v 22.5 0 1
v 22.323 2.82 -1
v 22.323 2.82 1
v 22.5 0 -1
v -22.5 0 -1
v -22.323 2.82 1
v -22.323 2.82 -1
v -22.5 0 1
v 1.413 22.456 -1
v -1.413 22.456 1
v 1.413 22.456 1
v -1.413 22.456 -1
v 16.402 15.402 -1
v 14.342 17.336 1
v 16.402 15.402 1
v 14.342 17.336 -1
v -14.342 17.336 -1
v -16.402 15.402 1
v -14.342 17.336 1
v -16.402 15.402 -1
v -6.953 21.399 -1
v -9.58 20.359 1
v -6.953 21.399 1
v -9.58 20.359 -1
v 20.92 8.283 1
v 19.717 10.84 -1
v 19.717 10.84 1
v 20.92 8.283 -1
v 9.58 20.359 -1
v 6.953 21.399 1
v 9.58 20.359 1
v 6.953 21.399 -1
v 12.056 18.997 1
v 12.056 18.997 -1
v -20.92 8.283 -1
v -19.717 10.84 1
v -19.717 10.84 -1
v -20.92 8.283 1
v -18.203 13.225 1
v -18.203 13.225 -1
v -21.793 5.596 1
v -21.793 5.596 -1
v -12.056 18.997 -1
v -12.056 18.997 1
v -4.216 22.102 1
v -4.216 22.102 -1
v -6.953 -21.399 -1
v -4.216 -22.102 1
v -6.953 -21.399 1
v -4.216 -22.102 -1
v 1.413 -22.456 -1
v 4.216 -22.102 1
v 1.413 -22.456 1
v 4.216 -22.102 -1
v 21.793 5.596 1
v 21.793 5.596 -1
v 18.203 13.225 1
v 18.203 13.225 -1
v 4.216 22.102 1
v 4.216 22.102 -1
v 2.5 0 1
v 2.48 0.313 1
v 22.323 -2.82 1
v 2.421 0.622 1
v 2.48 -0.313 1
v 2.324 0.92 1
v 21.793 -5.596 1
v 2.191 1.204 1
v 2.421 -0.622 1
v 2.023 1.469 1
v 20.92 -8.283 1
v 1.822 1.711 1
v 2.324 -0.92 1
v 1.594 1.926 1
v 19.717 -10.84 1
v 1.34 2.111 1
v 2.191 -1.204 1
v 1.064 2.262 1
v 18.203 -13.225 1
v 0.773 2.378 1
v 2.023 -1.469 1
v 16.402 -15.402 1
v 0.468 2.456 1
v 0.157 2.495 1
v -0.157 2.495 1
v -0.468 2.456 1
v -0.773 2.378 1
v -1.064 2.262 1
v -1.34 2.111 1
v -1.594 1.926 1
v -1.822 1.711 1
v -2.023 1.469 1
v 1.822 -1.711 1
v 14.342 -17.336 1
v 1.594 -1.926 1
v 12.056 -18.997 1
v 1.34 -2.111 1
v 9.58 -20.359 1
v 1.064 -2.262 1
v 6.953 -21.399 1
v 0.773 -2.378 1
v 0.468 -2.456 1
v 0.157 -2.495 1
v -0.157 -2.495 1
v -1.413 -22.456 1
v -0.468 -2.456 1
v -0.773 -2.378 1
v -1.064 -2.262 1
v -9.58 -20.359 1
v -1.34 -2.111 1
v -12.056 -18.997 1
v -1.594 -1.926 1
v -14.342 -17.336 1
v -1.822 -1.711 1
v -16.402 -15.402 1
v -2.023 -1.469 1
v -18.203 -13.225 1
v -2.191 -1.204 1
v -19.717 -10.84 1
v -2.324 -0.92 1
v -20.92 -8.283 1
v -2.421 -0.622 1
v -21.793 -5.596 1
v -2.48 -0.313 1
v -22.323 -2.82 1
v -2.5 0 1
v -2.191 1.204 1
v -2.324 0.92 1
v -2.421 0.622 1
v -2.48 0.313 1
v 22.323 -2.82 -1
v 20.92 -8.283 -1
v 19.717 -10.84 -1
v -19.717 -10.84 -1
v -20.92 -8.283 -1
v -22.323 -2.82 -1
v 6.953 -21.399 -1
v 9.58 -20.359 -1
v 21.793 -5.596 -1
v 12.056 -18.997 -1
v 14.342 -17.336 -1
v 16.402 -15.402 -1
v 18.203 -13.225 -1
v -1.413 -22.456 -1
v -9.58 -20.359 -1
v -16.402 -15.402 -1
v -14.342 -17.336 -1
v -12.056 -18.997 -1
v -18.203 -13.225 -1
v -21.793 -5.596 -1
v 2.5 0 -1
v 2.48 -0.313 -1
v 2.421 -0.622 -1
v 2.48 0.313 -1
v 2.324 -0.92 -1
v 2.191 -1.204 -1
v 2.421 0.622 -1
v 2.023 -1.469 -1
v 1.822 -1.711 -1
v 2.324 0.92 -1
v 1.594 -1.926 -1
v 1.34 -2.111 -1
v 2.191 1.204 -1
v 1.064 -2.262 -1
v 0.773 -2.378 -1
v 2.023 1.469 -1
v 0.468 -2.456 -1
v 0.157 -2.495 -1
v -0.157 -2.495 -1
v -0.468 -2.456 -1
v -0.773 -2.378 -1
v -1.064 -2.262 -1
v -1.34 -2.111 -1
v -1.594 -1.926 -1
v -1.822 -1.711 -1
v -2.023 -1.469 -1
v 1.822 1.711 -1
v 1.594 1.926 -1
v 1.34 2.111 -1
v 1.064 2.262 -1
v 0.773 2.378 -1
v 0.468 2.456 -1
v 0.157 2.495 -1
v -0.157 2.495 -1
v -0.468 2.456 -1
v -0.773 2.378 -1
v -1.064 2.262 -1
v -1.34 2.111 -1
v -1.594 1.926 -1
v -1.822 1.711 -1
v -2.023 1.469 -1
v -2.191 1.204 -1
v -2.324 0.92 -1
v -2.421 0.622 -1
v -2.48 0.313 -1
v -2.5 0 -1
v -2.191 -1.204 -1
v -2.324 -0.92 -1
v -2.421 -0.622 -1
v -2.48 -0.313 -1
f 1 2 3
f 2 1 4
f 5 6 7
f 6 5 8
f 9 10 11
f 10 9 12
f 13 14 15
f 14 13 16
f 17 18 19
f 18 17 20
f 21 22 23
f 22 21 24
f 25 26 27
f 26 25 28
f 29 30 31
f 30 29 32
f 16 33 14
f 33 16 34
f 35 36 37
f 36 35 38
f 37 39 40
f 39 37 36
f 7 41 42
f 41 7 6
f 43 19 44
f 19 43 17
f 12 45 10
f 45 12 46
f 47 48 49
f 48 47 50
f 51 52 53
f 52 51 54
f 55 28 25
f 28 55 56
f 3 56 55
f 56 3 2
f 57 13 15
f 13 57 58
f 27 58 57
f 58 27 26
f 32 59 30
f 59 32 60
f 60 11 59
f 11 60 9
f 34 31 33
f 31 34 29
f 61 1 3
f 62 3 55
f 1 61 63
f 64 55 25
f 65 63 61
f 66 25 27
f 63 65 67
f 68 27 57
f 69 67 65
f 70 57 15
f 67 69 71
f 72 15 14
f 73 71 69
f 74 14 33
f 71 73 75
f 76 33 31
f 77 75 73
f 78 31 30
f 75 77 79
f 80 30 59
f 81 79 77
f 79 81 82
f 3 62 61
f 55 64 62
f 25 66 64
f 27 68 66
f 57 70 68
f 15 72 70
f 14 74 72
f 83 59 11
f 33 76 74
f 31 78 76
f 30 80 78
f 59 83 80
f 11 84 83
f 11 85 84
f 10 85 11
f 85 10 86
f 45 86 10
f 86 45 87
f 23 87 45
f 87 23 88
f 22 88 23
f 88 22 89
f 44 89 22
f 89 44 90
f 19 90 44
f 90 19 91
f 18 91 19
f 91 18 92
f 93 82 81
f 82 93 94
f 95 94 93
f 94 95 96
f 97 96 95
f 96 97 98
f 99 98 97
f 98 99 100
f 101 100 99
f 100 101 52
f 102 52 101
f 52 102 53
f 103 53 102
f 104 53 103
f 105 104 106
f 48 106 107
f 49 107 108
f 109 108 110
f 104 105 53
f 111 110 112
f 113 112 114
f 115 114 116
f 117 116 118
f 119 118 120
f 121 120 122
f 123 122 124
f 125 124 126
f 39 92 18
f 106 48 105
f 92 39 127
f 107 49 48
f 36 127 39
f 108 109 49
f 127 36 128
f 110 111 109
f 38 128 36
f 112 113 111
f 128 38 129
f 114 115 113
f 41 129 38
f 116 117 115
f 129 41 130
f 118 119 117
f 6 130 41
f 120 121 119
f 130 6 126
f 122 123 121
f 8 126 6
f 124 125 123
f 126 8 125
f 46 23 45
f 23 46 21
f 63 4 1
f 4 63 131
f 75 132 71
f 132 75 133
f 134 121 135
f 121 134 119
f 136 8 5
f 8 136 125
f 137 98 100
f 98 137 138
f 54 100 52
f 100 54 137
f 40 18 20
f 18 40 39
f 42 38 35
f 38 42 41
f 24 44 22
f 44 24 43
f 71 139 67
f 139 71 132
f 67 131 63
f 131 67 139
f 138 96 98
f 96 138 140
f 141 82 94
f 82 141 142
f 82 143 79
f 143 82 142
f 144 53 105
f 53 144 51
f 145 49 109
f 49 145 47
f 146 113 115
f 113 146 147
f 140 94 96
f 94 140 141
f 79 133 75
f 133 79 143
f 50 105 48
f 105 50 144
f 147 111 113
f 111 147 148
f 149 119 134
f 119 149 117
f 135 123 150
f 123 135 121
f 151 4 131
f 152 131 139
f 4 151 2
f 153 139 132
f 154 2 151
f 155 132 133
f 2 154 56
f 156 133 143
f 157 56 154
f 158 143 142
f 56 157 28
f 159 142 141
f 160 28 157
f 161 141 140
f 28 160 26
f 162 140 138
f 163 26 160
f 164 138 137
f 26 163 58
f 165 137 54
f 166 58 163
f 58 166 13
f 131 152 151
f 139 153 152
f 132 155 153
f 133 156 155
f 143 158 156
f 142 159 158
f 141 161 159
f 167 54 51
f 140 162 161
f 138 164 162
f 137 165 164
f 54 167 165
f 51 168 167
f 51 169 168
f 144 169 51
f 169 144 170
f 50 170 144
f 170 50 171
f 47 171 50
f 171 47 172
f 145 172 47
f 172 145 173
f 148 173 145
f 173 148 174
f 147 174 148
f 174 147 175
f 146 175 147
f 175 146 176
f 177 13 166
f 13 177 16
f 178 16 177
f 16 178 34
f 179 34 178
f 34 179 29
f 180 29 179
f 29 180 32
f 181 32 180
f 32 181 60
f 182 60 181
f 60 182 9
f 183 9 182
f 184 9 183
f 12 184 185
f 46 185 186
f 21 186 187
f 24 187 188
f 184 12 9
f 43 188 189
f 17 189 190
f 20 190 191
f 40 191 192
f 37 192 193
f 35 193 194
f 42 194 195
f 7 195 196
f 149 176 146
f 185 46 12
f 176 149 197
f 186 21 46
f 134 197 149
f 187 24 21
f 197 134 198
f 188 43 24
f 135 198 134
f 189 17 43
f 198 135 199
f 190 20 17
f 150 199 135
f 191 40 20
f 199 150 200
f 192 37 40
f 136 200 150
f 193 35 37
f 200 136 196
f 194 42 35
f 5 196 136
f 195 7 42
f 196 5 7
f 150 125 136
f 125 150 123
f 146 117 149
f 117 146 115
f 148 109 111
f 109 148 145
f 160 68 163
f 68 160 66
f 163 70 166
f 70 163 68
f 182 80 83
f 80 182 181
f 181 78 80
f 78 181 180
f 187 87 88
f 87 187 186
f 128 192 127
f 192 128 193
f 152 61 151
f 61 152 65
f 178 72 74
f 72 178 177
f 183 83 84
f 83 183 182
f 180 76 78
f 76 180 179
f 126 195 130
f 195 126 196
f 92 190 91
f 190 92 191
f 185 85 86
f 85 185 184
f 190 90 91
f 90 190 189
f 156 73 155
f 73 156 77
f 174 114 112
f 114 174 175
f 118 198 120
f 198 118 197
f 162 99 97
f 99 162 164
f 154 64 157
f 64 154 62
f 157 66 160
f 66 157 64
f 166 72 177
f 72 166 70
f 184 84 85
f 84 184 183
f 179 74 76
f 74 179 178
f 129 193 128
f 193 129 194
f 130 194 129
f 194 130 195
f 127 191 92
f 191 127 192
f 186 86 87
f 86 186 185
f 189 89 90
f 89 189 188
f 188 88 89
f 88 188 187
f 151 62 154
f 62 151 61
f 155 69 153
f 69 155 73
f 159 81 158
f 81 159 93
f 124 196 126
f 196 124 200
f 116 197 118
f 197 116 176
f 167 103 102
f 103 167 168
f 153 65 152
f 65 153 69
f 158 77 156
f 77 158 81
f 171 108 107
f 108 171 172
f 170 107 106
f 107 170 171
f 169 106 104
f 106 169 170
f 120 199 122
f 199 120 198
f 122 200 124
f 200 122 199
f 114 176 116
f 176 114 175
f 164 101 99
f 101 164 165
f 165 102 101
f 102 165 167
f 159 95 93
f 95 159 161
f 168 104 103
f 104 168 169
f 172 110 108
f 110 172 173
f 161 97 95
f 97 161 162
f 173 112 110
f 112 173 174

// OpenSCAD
$fn = 50;


difference() {
	union() {
		translate(v = [0, 0, -1.0000000000]) {
			cylinder(h = 2, r = 22.5000000000);
		}
	}
	union() {
		translate(v = [0, 0, -100.0000000000]) {
			cylinder(h = 200, r = 2.5000000000);
		}
	}
}
